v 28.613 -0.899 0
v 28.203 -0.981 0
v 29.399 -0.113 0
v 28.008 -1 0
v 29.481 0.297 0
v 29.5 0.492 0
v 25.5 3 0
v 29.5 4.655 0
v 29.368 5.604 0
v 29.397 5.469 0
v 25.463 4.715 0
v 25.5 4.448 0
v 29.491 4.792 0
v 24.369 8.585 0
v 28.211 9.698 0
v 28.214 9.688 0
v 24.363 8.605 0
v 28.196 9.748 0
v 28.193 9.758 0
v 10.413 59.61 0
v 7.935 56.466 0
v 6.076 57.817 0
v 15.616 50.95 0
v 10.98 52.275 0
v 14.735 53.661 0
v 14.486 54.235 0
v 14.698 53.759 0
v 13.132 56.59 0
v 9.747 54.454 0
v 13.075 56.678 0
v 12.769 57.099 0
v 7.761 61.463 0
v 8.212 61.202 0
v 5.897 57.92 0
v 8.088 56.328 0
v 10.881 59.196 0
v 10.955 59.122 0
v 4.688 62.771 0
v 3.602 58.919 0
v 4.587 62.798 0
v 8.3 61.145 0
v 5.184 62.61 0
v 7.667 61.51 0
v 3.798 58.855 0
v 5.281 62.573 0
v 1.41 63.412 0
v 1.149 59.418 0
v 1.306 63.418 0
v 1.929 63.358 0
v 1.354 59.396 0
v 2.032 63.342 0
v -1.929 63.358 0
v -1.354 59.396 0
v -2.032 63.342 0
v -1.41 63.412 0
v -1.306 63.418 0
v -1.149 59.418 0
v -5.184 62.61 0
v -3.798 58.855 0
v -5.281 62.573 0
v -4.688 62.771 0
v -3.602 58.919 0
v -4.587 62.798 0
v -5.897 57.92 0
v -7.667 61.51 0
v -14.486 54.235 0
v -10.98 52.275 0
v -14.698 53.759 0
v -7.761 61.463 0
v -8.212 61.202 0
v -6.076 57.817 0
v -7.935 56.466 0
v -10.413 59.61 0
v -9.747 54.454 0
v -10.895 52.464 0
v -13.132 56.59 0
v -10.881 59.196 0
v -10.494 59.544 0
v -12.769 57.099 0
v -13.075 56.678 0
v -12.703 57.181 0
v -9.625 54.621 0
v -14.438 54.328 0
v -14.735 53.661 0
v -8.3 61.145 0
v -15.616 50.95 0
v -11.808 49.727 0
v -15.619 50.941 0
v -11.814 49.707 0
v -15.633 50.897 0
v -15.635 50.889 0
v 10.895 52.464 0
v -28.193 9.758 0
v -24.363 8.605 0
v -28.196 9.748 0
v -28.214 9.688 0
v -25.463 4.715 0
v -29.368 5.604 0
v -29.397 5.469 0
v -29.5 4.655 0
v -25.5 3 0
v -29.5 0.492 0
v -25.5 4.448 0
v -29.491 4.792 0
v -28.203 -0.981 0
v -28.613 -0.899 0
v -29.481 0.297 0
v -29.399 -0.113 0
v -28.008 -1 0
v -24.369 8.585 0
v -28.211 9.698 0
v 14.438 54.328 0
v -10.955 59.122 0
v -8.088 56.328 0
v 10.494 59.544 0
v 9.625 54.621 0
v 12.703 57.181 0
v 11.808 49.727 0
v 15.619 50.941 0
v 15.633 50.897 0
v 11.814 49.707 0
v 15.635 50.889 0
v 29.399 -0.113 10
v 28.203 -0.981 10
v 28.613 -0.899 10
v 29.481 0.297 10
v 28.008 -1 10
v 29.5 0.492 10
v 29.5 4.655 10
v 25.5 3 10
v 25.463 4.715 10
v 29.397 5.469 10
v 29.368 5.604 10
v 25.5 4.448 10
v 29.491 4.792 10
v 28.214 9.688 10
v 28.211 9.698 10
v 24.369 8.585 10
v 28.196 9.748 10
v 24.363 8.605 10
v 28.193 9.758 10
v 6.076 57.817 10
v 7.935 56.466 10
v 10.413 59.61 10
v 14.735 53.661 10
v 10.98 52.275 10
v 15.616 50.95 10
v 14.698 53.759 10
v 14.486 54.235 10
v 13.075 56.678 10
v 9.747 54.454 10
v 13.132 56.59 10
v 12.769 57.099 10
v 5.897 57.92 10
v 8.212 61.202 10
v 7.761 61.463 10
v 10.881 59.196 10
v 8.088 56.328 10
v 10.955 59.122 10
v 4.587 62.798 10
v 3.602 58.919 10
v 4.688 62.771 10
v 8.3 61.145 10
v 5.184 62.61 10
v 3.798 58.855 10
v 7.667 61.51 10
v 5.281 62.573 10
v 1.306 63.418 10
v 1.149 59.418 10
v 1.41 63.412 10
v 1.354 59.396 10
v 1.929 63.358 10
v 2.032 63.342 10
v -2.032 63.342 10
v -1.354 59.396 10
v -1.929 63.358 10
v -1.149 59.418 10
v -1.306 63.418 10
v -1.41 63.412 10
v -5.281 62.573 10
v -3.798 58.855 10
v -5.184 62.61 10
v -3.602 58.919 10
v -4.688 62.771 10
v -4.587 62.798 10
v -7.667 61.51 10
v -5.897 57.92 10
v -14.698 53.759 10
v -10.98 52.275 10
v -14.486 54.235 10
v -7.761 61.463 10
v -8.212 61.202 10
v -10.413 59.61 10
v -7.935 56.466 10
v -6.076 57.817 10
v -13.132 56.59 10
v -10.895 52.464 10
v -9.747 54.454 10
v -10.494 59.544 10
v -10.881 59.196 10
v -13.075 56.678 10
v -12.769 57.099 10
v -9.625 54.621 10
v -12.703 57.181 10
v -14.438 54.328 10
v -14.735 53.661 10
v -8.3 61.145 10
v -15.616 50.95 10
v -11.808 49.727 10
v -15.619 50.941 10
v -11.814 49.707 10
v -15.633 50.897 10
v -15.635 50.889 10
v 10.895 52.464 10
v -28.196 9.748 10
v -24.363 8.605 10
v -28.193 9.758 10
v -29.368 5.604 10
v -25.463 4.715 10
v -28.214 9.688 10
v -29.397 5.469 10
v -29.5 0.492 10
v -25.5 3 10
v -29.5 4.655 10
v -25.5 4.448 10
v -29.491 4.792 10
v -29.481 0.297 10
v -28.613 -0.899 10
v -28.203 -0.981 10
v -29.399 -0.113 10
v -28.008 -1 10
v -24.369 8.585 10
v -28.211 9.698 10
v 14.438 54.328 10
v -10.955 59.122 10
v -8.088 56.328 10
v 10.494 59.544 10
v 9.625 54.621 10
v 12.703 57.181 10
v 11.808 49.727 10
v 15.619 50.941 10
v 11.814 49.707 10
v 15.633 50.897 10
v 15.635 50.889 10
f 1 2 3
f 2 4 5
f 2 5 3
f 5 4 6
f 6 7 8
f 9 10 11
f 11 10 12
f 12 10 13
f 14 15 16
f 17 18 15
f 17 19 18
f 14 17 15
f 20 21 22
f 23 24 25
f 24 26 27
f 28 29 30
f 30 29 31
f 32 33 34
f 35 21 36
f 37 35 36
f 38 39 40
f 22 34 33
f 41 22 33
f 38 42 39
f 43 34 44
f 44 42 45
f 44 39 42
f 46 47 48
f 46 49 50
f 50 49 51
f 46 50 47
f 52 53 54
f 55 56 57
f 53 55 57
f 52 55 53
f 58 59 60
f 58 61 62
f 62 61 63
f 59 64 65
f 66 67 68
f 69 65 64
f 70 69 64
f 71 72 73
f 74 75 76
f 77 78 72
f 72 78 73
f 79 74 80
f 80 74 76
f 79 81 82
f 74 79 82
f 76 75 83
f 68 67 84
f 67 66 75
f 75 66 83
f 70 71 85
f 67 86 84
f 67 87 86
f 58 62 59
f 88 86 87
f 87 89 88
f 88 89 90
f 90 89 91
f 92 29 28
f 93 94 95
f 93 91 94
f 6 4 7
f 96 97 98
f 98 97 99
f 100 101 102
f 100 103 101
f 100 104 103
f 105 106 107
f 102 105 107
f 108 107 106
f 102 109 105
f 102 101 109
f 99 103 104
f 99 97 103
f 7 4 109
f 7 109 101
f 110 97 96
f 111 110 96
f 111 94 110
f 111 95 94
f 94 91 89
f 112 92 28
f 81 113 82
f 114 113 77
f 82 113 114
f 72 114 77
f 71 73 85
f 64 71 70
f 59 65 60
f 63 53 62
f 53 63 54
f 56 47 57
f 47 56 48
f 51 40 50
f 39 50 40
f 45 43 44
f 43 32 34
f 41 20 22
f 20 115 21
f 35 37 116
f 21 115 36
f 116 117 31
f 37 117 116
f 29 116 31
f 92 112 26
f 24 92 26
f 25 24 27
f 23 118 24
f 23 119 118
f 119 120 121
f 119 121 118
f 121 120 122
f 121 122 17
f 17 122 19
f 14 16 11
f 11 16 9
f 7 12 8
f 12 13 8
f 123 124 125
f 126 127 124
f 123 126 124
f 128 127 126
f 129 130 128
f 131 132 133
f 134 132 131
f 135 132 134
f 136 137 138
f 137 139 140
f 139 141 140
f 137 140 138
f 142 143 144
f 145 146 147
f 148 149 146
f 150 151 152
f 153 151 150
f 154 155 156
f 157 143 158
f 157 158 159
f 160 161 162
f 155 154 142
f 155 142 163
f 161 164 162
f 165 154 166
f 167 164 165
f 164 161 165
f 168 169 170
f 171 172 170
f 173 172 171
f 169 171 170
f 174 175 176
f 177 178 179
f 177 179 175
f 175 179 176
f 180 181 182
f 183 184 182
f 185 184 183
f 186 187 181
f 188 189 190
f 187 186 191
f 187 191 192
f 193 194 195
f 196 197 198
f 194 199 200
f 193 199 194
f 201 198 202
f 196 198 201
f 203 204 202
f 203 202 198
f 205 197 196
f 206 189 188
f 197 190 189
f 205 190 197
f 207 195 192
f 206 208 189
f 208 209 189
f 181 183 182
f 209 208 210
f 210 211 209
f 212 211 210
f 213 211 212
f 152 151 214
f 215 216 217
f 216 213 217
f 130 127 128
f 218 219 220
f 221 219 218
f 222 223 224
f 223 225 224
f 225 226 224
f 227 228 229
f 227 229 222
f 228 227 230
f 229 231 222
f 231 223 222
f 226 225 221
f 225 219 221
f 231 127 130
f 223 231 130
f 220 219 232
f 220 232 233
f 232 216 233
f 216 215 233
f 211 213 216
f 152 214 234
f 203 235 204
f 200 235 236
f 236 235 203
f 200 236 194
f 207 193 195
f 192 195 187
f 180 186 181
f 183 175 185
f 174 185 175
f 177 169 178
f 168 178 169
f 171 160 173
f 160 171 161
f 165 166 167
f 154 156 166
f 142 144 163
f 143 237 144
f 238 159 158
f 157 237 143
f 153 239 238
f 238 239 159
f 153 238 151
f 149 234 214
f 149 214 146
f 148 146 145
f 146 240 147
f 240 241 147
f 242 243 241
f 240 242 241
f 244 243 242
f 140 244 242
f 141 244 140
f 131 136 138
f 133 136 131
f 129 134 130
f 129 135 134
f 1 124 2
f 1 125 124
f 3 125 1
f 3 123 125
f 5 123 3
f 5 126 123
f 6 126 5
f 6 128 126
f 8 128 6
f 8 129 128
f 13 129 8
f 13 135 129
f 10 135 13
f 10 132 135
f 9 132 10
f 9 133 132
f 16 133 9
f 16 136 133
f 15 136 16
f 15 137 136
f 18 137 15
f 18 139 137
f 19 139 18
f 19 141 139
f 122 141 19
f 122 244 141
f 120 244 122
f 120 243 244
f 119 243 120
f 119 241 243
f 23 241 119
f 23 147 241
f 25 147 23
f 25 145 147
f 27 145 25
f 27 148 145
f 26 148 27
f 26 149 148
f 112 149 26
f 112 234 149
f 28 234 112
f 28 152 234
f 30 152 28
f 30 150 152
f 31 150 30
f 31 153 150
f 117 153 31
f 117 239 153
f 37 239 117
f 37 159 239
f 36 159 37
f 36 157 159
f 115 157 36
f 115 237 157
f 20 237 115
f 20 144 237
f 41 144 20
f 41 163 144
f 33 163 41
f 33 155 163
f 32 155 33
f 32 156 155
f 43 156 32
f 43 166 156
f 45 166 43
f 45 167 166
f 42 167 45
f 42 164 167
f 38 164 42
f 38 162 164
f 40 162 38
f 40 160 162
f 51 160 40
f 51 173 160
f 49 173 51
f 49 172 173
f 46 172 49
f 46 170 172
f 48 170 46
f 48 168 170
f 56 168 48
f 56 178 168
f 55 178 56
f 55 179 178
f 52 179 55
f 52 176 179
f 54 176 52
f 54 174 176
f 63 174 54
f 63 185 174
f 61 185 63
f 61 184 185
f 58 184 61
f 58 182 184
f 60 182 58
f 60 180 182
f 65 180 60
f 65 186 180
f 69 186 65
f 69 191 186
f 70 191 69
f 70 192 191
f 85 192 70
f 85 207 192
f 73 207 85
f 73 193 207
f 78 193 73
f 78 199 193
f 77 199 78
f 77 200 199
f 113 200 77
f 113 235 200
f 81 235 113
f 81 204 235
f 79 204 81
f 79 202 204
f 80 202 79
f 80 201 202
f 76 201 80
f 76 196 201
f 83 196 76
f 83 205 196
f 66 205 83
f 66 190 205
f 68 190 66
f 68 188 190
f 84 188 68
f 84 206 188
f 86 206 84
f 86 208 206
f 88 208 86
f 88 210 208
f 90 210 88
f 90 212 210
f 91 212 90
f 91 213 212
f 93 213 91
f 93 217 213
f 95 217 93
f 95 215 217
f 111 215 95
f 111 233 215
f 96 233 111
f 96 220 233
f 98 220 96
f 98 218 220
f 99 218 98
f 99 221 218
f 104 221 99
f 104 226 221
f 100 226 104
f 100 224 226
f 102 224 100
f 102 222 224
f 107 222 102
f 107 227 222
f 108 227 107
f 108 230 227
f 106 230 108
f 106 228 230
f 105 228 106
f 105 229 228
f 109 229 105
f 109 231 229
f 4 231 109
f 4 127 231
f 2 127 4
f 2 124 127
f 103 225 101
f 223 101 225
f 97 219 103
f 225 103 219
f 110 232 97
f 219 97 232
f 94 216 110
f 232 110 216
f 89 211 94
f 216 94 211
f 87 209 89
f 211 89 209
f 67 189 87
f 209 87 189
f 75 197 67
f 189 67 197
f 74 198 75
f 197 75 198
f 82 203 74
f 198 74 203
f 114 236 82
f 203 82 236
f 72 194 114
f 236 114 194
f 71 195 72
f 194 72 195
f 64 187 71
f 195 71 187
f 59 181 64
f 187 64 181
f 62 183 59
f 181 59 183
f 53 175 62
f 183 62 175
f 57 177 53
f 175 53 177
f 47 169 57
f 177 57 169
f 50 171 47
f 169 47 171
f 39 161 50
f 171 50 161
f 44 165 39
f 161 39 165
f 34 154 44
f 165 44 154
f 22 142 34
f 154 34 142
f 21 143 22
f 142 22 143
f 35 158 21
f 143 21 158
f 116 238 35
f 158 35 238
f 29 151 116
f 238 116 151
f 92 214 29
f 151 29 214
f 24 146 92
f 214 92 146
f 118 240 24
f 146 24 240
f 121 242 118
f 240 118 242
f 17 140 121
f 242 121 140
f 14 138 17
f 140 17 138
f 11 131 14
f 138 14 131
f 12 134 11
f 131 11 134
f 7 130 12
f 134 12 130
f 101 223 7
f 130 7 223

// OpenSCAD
linear_extrude(10)
difference(){
offset(1)
offset(-5)
offset(5){
hull(){
translate([0,-15/2+70-15,0])
circle(d=30);
translate([20,15/2,0])
circle(d=15);
translate([-20,15/2,0])
circle(d=15);

translate([0,5/2,0])
square([57,5],center=true);
}
}


offset(-3)
offset(-5)
offset(5){
hull(){
translate([0,-15/2+70-15,0])
circle(d=30);
translate([20,15/2,0])
circle(d=15);
translate([-20,15/2,0])
circle(d=15);

translate([0,5/2,0])
square([57,5],center=true);
}
}
}
